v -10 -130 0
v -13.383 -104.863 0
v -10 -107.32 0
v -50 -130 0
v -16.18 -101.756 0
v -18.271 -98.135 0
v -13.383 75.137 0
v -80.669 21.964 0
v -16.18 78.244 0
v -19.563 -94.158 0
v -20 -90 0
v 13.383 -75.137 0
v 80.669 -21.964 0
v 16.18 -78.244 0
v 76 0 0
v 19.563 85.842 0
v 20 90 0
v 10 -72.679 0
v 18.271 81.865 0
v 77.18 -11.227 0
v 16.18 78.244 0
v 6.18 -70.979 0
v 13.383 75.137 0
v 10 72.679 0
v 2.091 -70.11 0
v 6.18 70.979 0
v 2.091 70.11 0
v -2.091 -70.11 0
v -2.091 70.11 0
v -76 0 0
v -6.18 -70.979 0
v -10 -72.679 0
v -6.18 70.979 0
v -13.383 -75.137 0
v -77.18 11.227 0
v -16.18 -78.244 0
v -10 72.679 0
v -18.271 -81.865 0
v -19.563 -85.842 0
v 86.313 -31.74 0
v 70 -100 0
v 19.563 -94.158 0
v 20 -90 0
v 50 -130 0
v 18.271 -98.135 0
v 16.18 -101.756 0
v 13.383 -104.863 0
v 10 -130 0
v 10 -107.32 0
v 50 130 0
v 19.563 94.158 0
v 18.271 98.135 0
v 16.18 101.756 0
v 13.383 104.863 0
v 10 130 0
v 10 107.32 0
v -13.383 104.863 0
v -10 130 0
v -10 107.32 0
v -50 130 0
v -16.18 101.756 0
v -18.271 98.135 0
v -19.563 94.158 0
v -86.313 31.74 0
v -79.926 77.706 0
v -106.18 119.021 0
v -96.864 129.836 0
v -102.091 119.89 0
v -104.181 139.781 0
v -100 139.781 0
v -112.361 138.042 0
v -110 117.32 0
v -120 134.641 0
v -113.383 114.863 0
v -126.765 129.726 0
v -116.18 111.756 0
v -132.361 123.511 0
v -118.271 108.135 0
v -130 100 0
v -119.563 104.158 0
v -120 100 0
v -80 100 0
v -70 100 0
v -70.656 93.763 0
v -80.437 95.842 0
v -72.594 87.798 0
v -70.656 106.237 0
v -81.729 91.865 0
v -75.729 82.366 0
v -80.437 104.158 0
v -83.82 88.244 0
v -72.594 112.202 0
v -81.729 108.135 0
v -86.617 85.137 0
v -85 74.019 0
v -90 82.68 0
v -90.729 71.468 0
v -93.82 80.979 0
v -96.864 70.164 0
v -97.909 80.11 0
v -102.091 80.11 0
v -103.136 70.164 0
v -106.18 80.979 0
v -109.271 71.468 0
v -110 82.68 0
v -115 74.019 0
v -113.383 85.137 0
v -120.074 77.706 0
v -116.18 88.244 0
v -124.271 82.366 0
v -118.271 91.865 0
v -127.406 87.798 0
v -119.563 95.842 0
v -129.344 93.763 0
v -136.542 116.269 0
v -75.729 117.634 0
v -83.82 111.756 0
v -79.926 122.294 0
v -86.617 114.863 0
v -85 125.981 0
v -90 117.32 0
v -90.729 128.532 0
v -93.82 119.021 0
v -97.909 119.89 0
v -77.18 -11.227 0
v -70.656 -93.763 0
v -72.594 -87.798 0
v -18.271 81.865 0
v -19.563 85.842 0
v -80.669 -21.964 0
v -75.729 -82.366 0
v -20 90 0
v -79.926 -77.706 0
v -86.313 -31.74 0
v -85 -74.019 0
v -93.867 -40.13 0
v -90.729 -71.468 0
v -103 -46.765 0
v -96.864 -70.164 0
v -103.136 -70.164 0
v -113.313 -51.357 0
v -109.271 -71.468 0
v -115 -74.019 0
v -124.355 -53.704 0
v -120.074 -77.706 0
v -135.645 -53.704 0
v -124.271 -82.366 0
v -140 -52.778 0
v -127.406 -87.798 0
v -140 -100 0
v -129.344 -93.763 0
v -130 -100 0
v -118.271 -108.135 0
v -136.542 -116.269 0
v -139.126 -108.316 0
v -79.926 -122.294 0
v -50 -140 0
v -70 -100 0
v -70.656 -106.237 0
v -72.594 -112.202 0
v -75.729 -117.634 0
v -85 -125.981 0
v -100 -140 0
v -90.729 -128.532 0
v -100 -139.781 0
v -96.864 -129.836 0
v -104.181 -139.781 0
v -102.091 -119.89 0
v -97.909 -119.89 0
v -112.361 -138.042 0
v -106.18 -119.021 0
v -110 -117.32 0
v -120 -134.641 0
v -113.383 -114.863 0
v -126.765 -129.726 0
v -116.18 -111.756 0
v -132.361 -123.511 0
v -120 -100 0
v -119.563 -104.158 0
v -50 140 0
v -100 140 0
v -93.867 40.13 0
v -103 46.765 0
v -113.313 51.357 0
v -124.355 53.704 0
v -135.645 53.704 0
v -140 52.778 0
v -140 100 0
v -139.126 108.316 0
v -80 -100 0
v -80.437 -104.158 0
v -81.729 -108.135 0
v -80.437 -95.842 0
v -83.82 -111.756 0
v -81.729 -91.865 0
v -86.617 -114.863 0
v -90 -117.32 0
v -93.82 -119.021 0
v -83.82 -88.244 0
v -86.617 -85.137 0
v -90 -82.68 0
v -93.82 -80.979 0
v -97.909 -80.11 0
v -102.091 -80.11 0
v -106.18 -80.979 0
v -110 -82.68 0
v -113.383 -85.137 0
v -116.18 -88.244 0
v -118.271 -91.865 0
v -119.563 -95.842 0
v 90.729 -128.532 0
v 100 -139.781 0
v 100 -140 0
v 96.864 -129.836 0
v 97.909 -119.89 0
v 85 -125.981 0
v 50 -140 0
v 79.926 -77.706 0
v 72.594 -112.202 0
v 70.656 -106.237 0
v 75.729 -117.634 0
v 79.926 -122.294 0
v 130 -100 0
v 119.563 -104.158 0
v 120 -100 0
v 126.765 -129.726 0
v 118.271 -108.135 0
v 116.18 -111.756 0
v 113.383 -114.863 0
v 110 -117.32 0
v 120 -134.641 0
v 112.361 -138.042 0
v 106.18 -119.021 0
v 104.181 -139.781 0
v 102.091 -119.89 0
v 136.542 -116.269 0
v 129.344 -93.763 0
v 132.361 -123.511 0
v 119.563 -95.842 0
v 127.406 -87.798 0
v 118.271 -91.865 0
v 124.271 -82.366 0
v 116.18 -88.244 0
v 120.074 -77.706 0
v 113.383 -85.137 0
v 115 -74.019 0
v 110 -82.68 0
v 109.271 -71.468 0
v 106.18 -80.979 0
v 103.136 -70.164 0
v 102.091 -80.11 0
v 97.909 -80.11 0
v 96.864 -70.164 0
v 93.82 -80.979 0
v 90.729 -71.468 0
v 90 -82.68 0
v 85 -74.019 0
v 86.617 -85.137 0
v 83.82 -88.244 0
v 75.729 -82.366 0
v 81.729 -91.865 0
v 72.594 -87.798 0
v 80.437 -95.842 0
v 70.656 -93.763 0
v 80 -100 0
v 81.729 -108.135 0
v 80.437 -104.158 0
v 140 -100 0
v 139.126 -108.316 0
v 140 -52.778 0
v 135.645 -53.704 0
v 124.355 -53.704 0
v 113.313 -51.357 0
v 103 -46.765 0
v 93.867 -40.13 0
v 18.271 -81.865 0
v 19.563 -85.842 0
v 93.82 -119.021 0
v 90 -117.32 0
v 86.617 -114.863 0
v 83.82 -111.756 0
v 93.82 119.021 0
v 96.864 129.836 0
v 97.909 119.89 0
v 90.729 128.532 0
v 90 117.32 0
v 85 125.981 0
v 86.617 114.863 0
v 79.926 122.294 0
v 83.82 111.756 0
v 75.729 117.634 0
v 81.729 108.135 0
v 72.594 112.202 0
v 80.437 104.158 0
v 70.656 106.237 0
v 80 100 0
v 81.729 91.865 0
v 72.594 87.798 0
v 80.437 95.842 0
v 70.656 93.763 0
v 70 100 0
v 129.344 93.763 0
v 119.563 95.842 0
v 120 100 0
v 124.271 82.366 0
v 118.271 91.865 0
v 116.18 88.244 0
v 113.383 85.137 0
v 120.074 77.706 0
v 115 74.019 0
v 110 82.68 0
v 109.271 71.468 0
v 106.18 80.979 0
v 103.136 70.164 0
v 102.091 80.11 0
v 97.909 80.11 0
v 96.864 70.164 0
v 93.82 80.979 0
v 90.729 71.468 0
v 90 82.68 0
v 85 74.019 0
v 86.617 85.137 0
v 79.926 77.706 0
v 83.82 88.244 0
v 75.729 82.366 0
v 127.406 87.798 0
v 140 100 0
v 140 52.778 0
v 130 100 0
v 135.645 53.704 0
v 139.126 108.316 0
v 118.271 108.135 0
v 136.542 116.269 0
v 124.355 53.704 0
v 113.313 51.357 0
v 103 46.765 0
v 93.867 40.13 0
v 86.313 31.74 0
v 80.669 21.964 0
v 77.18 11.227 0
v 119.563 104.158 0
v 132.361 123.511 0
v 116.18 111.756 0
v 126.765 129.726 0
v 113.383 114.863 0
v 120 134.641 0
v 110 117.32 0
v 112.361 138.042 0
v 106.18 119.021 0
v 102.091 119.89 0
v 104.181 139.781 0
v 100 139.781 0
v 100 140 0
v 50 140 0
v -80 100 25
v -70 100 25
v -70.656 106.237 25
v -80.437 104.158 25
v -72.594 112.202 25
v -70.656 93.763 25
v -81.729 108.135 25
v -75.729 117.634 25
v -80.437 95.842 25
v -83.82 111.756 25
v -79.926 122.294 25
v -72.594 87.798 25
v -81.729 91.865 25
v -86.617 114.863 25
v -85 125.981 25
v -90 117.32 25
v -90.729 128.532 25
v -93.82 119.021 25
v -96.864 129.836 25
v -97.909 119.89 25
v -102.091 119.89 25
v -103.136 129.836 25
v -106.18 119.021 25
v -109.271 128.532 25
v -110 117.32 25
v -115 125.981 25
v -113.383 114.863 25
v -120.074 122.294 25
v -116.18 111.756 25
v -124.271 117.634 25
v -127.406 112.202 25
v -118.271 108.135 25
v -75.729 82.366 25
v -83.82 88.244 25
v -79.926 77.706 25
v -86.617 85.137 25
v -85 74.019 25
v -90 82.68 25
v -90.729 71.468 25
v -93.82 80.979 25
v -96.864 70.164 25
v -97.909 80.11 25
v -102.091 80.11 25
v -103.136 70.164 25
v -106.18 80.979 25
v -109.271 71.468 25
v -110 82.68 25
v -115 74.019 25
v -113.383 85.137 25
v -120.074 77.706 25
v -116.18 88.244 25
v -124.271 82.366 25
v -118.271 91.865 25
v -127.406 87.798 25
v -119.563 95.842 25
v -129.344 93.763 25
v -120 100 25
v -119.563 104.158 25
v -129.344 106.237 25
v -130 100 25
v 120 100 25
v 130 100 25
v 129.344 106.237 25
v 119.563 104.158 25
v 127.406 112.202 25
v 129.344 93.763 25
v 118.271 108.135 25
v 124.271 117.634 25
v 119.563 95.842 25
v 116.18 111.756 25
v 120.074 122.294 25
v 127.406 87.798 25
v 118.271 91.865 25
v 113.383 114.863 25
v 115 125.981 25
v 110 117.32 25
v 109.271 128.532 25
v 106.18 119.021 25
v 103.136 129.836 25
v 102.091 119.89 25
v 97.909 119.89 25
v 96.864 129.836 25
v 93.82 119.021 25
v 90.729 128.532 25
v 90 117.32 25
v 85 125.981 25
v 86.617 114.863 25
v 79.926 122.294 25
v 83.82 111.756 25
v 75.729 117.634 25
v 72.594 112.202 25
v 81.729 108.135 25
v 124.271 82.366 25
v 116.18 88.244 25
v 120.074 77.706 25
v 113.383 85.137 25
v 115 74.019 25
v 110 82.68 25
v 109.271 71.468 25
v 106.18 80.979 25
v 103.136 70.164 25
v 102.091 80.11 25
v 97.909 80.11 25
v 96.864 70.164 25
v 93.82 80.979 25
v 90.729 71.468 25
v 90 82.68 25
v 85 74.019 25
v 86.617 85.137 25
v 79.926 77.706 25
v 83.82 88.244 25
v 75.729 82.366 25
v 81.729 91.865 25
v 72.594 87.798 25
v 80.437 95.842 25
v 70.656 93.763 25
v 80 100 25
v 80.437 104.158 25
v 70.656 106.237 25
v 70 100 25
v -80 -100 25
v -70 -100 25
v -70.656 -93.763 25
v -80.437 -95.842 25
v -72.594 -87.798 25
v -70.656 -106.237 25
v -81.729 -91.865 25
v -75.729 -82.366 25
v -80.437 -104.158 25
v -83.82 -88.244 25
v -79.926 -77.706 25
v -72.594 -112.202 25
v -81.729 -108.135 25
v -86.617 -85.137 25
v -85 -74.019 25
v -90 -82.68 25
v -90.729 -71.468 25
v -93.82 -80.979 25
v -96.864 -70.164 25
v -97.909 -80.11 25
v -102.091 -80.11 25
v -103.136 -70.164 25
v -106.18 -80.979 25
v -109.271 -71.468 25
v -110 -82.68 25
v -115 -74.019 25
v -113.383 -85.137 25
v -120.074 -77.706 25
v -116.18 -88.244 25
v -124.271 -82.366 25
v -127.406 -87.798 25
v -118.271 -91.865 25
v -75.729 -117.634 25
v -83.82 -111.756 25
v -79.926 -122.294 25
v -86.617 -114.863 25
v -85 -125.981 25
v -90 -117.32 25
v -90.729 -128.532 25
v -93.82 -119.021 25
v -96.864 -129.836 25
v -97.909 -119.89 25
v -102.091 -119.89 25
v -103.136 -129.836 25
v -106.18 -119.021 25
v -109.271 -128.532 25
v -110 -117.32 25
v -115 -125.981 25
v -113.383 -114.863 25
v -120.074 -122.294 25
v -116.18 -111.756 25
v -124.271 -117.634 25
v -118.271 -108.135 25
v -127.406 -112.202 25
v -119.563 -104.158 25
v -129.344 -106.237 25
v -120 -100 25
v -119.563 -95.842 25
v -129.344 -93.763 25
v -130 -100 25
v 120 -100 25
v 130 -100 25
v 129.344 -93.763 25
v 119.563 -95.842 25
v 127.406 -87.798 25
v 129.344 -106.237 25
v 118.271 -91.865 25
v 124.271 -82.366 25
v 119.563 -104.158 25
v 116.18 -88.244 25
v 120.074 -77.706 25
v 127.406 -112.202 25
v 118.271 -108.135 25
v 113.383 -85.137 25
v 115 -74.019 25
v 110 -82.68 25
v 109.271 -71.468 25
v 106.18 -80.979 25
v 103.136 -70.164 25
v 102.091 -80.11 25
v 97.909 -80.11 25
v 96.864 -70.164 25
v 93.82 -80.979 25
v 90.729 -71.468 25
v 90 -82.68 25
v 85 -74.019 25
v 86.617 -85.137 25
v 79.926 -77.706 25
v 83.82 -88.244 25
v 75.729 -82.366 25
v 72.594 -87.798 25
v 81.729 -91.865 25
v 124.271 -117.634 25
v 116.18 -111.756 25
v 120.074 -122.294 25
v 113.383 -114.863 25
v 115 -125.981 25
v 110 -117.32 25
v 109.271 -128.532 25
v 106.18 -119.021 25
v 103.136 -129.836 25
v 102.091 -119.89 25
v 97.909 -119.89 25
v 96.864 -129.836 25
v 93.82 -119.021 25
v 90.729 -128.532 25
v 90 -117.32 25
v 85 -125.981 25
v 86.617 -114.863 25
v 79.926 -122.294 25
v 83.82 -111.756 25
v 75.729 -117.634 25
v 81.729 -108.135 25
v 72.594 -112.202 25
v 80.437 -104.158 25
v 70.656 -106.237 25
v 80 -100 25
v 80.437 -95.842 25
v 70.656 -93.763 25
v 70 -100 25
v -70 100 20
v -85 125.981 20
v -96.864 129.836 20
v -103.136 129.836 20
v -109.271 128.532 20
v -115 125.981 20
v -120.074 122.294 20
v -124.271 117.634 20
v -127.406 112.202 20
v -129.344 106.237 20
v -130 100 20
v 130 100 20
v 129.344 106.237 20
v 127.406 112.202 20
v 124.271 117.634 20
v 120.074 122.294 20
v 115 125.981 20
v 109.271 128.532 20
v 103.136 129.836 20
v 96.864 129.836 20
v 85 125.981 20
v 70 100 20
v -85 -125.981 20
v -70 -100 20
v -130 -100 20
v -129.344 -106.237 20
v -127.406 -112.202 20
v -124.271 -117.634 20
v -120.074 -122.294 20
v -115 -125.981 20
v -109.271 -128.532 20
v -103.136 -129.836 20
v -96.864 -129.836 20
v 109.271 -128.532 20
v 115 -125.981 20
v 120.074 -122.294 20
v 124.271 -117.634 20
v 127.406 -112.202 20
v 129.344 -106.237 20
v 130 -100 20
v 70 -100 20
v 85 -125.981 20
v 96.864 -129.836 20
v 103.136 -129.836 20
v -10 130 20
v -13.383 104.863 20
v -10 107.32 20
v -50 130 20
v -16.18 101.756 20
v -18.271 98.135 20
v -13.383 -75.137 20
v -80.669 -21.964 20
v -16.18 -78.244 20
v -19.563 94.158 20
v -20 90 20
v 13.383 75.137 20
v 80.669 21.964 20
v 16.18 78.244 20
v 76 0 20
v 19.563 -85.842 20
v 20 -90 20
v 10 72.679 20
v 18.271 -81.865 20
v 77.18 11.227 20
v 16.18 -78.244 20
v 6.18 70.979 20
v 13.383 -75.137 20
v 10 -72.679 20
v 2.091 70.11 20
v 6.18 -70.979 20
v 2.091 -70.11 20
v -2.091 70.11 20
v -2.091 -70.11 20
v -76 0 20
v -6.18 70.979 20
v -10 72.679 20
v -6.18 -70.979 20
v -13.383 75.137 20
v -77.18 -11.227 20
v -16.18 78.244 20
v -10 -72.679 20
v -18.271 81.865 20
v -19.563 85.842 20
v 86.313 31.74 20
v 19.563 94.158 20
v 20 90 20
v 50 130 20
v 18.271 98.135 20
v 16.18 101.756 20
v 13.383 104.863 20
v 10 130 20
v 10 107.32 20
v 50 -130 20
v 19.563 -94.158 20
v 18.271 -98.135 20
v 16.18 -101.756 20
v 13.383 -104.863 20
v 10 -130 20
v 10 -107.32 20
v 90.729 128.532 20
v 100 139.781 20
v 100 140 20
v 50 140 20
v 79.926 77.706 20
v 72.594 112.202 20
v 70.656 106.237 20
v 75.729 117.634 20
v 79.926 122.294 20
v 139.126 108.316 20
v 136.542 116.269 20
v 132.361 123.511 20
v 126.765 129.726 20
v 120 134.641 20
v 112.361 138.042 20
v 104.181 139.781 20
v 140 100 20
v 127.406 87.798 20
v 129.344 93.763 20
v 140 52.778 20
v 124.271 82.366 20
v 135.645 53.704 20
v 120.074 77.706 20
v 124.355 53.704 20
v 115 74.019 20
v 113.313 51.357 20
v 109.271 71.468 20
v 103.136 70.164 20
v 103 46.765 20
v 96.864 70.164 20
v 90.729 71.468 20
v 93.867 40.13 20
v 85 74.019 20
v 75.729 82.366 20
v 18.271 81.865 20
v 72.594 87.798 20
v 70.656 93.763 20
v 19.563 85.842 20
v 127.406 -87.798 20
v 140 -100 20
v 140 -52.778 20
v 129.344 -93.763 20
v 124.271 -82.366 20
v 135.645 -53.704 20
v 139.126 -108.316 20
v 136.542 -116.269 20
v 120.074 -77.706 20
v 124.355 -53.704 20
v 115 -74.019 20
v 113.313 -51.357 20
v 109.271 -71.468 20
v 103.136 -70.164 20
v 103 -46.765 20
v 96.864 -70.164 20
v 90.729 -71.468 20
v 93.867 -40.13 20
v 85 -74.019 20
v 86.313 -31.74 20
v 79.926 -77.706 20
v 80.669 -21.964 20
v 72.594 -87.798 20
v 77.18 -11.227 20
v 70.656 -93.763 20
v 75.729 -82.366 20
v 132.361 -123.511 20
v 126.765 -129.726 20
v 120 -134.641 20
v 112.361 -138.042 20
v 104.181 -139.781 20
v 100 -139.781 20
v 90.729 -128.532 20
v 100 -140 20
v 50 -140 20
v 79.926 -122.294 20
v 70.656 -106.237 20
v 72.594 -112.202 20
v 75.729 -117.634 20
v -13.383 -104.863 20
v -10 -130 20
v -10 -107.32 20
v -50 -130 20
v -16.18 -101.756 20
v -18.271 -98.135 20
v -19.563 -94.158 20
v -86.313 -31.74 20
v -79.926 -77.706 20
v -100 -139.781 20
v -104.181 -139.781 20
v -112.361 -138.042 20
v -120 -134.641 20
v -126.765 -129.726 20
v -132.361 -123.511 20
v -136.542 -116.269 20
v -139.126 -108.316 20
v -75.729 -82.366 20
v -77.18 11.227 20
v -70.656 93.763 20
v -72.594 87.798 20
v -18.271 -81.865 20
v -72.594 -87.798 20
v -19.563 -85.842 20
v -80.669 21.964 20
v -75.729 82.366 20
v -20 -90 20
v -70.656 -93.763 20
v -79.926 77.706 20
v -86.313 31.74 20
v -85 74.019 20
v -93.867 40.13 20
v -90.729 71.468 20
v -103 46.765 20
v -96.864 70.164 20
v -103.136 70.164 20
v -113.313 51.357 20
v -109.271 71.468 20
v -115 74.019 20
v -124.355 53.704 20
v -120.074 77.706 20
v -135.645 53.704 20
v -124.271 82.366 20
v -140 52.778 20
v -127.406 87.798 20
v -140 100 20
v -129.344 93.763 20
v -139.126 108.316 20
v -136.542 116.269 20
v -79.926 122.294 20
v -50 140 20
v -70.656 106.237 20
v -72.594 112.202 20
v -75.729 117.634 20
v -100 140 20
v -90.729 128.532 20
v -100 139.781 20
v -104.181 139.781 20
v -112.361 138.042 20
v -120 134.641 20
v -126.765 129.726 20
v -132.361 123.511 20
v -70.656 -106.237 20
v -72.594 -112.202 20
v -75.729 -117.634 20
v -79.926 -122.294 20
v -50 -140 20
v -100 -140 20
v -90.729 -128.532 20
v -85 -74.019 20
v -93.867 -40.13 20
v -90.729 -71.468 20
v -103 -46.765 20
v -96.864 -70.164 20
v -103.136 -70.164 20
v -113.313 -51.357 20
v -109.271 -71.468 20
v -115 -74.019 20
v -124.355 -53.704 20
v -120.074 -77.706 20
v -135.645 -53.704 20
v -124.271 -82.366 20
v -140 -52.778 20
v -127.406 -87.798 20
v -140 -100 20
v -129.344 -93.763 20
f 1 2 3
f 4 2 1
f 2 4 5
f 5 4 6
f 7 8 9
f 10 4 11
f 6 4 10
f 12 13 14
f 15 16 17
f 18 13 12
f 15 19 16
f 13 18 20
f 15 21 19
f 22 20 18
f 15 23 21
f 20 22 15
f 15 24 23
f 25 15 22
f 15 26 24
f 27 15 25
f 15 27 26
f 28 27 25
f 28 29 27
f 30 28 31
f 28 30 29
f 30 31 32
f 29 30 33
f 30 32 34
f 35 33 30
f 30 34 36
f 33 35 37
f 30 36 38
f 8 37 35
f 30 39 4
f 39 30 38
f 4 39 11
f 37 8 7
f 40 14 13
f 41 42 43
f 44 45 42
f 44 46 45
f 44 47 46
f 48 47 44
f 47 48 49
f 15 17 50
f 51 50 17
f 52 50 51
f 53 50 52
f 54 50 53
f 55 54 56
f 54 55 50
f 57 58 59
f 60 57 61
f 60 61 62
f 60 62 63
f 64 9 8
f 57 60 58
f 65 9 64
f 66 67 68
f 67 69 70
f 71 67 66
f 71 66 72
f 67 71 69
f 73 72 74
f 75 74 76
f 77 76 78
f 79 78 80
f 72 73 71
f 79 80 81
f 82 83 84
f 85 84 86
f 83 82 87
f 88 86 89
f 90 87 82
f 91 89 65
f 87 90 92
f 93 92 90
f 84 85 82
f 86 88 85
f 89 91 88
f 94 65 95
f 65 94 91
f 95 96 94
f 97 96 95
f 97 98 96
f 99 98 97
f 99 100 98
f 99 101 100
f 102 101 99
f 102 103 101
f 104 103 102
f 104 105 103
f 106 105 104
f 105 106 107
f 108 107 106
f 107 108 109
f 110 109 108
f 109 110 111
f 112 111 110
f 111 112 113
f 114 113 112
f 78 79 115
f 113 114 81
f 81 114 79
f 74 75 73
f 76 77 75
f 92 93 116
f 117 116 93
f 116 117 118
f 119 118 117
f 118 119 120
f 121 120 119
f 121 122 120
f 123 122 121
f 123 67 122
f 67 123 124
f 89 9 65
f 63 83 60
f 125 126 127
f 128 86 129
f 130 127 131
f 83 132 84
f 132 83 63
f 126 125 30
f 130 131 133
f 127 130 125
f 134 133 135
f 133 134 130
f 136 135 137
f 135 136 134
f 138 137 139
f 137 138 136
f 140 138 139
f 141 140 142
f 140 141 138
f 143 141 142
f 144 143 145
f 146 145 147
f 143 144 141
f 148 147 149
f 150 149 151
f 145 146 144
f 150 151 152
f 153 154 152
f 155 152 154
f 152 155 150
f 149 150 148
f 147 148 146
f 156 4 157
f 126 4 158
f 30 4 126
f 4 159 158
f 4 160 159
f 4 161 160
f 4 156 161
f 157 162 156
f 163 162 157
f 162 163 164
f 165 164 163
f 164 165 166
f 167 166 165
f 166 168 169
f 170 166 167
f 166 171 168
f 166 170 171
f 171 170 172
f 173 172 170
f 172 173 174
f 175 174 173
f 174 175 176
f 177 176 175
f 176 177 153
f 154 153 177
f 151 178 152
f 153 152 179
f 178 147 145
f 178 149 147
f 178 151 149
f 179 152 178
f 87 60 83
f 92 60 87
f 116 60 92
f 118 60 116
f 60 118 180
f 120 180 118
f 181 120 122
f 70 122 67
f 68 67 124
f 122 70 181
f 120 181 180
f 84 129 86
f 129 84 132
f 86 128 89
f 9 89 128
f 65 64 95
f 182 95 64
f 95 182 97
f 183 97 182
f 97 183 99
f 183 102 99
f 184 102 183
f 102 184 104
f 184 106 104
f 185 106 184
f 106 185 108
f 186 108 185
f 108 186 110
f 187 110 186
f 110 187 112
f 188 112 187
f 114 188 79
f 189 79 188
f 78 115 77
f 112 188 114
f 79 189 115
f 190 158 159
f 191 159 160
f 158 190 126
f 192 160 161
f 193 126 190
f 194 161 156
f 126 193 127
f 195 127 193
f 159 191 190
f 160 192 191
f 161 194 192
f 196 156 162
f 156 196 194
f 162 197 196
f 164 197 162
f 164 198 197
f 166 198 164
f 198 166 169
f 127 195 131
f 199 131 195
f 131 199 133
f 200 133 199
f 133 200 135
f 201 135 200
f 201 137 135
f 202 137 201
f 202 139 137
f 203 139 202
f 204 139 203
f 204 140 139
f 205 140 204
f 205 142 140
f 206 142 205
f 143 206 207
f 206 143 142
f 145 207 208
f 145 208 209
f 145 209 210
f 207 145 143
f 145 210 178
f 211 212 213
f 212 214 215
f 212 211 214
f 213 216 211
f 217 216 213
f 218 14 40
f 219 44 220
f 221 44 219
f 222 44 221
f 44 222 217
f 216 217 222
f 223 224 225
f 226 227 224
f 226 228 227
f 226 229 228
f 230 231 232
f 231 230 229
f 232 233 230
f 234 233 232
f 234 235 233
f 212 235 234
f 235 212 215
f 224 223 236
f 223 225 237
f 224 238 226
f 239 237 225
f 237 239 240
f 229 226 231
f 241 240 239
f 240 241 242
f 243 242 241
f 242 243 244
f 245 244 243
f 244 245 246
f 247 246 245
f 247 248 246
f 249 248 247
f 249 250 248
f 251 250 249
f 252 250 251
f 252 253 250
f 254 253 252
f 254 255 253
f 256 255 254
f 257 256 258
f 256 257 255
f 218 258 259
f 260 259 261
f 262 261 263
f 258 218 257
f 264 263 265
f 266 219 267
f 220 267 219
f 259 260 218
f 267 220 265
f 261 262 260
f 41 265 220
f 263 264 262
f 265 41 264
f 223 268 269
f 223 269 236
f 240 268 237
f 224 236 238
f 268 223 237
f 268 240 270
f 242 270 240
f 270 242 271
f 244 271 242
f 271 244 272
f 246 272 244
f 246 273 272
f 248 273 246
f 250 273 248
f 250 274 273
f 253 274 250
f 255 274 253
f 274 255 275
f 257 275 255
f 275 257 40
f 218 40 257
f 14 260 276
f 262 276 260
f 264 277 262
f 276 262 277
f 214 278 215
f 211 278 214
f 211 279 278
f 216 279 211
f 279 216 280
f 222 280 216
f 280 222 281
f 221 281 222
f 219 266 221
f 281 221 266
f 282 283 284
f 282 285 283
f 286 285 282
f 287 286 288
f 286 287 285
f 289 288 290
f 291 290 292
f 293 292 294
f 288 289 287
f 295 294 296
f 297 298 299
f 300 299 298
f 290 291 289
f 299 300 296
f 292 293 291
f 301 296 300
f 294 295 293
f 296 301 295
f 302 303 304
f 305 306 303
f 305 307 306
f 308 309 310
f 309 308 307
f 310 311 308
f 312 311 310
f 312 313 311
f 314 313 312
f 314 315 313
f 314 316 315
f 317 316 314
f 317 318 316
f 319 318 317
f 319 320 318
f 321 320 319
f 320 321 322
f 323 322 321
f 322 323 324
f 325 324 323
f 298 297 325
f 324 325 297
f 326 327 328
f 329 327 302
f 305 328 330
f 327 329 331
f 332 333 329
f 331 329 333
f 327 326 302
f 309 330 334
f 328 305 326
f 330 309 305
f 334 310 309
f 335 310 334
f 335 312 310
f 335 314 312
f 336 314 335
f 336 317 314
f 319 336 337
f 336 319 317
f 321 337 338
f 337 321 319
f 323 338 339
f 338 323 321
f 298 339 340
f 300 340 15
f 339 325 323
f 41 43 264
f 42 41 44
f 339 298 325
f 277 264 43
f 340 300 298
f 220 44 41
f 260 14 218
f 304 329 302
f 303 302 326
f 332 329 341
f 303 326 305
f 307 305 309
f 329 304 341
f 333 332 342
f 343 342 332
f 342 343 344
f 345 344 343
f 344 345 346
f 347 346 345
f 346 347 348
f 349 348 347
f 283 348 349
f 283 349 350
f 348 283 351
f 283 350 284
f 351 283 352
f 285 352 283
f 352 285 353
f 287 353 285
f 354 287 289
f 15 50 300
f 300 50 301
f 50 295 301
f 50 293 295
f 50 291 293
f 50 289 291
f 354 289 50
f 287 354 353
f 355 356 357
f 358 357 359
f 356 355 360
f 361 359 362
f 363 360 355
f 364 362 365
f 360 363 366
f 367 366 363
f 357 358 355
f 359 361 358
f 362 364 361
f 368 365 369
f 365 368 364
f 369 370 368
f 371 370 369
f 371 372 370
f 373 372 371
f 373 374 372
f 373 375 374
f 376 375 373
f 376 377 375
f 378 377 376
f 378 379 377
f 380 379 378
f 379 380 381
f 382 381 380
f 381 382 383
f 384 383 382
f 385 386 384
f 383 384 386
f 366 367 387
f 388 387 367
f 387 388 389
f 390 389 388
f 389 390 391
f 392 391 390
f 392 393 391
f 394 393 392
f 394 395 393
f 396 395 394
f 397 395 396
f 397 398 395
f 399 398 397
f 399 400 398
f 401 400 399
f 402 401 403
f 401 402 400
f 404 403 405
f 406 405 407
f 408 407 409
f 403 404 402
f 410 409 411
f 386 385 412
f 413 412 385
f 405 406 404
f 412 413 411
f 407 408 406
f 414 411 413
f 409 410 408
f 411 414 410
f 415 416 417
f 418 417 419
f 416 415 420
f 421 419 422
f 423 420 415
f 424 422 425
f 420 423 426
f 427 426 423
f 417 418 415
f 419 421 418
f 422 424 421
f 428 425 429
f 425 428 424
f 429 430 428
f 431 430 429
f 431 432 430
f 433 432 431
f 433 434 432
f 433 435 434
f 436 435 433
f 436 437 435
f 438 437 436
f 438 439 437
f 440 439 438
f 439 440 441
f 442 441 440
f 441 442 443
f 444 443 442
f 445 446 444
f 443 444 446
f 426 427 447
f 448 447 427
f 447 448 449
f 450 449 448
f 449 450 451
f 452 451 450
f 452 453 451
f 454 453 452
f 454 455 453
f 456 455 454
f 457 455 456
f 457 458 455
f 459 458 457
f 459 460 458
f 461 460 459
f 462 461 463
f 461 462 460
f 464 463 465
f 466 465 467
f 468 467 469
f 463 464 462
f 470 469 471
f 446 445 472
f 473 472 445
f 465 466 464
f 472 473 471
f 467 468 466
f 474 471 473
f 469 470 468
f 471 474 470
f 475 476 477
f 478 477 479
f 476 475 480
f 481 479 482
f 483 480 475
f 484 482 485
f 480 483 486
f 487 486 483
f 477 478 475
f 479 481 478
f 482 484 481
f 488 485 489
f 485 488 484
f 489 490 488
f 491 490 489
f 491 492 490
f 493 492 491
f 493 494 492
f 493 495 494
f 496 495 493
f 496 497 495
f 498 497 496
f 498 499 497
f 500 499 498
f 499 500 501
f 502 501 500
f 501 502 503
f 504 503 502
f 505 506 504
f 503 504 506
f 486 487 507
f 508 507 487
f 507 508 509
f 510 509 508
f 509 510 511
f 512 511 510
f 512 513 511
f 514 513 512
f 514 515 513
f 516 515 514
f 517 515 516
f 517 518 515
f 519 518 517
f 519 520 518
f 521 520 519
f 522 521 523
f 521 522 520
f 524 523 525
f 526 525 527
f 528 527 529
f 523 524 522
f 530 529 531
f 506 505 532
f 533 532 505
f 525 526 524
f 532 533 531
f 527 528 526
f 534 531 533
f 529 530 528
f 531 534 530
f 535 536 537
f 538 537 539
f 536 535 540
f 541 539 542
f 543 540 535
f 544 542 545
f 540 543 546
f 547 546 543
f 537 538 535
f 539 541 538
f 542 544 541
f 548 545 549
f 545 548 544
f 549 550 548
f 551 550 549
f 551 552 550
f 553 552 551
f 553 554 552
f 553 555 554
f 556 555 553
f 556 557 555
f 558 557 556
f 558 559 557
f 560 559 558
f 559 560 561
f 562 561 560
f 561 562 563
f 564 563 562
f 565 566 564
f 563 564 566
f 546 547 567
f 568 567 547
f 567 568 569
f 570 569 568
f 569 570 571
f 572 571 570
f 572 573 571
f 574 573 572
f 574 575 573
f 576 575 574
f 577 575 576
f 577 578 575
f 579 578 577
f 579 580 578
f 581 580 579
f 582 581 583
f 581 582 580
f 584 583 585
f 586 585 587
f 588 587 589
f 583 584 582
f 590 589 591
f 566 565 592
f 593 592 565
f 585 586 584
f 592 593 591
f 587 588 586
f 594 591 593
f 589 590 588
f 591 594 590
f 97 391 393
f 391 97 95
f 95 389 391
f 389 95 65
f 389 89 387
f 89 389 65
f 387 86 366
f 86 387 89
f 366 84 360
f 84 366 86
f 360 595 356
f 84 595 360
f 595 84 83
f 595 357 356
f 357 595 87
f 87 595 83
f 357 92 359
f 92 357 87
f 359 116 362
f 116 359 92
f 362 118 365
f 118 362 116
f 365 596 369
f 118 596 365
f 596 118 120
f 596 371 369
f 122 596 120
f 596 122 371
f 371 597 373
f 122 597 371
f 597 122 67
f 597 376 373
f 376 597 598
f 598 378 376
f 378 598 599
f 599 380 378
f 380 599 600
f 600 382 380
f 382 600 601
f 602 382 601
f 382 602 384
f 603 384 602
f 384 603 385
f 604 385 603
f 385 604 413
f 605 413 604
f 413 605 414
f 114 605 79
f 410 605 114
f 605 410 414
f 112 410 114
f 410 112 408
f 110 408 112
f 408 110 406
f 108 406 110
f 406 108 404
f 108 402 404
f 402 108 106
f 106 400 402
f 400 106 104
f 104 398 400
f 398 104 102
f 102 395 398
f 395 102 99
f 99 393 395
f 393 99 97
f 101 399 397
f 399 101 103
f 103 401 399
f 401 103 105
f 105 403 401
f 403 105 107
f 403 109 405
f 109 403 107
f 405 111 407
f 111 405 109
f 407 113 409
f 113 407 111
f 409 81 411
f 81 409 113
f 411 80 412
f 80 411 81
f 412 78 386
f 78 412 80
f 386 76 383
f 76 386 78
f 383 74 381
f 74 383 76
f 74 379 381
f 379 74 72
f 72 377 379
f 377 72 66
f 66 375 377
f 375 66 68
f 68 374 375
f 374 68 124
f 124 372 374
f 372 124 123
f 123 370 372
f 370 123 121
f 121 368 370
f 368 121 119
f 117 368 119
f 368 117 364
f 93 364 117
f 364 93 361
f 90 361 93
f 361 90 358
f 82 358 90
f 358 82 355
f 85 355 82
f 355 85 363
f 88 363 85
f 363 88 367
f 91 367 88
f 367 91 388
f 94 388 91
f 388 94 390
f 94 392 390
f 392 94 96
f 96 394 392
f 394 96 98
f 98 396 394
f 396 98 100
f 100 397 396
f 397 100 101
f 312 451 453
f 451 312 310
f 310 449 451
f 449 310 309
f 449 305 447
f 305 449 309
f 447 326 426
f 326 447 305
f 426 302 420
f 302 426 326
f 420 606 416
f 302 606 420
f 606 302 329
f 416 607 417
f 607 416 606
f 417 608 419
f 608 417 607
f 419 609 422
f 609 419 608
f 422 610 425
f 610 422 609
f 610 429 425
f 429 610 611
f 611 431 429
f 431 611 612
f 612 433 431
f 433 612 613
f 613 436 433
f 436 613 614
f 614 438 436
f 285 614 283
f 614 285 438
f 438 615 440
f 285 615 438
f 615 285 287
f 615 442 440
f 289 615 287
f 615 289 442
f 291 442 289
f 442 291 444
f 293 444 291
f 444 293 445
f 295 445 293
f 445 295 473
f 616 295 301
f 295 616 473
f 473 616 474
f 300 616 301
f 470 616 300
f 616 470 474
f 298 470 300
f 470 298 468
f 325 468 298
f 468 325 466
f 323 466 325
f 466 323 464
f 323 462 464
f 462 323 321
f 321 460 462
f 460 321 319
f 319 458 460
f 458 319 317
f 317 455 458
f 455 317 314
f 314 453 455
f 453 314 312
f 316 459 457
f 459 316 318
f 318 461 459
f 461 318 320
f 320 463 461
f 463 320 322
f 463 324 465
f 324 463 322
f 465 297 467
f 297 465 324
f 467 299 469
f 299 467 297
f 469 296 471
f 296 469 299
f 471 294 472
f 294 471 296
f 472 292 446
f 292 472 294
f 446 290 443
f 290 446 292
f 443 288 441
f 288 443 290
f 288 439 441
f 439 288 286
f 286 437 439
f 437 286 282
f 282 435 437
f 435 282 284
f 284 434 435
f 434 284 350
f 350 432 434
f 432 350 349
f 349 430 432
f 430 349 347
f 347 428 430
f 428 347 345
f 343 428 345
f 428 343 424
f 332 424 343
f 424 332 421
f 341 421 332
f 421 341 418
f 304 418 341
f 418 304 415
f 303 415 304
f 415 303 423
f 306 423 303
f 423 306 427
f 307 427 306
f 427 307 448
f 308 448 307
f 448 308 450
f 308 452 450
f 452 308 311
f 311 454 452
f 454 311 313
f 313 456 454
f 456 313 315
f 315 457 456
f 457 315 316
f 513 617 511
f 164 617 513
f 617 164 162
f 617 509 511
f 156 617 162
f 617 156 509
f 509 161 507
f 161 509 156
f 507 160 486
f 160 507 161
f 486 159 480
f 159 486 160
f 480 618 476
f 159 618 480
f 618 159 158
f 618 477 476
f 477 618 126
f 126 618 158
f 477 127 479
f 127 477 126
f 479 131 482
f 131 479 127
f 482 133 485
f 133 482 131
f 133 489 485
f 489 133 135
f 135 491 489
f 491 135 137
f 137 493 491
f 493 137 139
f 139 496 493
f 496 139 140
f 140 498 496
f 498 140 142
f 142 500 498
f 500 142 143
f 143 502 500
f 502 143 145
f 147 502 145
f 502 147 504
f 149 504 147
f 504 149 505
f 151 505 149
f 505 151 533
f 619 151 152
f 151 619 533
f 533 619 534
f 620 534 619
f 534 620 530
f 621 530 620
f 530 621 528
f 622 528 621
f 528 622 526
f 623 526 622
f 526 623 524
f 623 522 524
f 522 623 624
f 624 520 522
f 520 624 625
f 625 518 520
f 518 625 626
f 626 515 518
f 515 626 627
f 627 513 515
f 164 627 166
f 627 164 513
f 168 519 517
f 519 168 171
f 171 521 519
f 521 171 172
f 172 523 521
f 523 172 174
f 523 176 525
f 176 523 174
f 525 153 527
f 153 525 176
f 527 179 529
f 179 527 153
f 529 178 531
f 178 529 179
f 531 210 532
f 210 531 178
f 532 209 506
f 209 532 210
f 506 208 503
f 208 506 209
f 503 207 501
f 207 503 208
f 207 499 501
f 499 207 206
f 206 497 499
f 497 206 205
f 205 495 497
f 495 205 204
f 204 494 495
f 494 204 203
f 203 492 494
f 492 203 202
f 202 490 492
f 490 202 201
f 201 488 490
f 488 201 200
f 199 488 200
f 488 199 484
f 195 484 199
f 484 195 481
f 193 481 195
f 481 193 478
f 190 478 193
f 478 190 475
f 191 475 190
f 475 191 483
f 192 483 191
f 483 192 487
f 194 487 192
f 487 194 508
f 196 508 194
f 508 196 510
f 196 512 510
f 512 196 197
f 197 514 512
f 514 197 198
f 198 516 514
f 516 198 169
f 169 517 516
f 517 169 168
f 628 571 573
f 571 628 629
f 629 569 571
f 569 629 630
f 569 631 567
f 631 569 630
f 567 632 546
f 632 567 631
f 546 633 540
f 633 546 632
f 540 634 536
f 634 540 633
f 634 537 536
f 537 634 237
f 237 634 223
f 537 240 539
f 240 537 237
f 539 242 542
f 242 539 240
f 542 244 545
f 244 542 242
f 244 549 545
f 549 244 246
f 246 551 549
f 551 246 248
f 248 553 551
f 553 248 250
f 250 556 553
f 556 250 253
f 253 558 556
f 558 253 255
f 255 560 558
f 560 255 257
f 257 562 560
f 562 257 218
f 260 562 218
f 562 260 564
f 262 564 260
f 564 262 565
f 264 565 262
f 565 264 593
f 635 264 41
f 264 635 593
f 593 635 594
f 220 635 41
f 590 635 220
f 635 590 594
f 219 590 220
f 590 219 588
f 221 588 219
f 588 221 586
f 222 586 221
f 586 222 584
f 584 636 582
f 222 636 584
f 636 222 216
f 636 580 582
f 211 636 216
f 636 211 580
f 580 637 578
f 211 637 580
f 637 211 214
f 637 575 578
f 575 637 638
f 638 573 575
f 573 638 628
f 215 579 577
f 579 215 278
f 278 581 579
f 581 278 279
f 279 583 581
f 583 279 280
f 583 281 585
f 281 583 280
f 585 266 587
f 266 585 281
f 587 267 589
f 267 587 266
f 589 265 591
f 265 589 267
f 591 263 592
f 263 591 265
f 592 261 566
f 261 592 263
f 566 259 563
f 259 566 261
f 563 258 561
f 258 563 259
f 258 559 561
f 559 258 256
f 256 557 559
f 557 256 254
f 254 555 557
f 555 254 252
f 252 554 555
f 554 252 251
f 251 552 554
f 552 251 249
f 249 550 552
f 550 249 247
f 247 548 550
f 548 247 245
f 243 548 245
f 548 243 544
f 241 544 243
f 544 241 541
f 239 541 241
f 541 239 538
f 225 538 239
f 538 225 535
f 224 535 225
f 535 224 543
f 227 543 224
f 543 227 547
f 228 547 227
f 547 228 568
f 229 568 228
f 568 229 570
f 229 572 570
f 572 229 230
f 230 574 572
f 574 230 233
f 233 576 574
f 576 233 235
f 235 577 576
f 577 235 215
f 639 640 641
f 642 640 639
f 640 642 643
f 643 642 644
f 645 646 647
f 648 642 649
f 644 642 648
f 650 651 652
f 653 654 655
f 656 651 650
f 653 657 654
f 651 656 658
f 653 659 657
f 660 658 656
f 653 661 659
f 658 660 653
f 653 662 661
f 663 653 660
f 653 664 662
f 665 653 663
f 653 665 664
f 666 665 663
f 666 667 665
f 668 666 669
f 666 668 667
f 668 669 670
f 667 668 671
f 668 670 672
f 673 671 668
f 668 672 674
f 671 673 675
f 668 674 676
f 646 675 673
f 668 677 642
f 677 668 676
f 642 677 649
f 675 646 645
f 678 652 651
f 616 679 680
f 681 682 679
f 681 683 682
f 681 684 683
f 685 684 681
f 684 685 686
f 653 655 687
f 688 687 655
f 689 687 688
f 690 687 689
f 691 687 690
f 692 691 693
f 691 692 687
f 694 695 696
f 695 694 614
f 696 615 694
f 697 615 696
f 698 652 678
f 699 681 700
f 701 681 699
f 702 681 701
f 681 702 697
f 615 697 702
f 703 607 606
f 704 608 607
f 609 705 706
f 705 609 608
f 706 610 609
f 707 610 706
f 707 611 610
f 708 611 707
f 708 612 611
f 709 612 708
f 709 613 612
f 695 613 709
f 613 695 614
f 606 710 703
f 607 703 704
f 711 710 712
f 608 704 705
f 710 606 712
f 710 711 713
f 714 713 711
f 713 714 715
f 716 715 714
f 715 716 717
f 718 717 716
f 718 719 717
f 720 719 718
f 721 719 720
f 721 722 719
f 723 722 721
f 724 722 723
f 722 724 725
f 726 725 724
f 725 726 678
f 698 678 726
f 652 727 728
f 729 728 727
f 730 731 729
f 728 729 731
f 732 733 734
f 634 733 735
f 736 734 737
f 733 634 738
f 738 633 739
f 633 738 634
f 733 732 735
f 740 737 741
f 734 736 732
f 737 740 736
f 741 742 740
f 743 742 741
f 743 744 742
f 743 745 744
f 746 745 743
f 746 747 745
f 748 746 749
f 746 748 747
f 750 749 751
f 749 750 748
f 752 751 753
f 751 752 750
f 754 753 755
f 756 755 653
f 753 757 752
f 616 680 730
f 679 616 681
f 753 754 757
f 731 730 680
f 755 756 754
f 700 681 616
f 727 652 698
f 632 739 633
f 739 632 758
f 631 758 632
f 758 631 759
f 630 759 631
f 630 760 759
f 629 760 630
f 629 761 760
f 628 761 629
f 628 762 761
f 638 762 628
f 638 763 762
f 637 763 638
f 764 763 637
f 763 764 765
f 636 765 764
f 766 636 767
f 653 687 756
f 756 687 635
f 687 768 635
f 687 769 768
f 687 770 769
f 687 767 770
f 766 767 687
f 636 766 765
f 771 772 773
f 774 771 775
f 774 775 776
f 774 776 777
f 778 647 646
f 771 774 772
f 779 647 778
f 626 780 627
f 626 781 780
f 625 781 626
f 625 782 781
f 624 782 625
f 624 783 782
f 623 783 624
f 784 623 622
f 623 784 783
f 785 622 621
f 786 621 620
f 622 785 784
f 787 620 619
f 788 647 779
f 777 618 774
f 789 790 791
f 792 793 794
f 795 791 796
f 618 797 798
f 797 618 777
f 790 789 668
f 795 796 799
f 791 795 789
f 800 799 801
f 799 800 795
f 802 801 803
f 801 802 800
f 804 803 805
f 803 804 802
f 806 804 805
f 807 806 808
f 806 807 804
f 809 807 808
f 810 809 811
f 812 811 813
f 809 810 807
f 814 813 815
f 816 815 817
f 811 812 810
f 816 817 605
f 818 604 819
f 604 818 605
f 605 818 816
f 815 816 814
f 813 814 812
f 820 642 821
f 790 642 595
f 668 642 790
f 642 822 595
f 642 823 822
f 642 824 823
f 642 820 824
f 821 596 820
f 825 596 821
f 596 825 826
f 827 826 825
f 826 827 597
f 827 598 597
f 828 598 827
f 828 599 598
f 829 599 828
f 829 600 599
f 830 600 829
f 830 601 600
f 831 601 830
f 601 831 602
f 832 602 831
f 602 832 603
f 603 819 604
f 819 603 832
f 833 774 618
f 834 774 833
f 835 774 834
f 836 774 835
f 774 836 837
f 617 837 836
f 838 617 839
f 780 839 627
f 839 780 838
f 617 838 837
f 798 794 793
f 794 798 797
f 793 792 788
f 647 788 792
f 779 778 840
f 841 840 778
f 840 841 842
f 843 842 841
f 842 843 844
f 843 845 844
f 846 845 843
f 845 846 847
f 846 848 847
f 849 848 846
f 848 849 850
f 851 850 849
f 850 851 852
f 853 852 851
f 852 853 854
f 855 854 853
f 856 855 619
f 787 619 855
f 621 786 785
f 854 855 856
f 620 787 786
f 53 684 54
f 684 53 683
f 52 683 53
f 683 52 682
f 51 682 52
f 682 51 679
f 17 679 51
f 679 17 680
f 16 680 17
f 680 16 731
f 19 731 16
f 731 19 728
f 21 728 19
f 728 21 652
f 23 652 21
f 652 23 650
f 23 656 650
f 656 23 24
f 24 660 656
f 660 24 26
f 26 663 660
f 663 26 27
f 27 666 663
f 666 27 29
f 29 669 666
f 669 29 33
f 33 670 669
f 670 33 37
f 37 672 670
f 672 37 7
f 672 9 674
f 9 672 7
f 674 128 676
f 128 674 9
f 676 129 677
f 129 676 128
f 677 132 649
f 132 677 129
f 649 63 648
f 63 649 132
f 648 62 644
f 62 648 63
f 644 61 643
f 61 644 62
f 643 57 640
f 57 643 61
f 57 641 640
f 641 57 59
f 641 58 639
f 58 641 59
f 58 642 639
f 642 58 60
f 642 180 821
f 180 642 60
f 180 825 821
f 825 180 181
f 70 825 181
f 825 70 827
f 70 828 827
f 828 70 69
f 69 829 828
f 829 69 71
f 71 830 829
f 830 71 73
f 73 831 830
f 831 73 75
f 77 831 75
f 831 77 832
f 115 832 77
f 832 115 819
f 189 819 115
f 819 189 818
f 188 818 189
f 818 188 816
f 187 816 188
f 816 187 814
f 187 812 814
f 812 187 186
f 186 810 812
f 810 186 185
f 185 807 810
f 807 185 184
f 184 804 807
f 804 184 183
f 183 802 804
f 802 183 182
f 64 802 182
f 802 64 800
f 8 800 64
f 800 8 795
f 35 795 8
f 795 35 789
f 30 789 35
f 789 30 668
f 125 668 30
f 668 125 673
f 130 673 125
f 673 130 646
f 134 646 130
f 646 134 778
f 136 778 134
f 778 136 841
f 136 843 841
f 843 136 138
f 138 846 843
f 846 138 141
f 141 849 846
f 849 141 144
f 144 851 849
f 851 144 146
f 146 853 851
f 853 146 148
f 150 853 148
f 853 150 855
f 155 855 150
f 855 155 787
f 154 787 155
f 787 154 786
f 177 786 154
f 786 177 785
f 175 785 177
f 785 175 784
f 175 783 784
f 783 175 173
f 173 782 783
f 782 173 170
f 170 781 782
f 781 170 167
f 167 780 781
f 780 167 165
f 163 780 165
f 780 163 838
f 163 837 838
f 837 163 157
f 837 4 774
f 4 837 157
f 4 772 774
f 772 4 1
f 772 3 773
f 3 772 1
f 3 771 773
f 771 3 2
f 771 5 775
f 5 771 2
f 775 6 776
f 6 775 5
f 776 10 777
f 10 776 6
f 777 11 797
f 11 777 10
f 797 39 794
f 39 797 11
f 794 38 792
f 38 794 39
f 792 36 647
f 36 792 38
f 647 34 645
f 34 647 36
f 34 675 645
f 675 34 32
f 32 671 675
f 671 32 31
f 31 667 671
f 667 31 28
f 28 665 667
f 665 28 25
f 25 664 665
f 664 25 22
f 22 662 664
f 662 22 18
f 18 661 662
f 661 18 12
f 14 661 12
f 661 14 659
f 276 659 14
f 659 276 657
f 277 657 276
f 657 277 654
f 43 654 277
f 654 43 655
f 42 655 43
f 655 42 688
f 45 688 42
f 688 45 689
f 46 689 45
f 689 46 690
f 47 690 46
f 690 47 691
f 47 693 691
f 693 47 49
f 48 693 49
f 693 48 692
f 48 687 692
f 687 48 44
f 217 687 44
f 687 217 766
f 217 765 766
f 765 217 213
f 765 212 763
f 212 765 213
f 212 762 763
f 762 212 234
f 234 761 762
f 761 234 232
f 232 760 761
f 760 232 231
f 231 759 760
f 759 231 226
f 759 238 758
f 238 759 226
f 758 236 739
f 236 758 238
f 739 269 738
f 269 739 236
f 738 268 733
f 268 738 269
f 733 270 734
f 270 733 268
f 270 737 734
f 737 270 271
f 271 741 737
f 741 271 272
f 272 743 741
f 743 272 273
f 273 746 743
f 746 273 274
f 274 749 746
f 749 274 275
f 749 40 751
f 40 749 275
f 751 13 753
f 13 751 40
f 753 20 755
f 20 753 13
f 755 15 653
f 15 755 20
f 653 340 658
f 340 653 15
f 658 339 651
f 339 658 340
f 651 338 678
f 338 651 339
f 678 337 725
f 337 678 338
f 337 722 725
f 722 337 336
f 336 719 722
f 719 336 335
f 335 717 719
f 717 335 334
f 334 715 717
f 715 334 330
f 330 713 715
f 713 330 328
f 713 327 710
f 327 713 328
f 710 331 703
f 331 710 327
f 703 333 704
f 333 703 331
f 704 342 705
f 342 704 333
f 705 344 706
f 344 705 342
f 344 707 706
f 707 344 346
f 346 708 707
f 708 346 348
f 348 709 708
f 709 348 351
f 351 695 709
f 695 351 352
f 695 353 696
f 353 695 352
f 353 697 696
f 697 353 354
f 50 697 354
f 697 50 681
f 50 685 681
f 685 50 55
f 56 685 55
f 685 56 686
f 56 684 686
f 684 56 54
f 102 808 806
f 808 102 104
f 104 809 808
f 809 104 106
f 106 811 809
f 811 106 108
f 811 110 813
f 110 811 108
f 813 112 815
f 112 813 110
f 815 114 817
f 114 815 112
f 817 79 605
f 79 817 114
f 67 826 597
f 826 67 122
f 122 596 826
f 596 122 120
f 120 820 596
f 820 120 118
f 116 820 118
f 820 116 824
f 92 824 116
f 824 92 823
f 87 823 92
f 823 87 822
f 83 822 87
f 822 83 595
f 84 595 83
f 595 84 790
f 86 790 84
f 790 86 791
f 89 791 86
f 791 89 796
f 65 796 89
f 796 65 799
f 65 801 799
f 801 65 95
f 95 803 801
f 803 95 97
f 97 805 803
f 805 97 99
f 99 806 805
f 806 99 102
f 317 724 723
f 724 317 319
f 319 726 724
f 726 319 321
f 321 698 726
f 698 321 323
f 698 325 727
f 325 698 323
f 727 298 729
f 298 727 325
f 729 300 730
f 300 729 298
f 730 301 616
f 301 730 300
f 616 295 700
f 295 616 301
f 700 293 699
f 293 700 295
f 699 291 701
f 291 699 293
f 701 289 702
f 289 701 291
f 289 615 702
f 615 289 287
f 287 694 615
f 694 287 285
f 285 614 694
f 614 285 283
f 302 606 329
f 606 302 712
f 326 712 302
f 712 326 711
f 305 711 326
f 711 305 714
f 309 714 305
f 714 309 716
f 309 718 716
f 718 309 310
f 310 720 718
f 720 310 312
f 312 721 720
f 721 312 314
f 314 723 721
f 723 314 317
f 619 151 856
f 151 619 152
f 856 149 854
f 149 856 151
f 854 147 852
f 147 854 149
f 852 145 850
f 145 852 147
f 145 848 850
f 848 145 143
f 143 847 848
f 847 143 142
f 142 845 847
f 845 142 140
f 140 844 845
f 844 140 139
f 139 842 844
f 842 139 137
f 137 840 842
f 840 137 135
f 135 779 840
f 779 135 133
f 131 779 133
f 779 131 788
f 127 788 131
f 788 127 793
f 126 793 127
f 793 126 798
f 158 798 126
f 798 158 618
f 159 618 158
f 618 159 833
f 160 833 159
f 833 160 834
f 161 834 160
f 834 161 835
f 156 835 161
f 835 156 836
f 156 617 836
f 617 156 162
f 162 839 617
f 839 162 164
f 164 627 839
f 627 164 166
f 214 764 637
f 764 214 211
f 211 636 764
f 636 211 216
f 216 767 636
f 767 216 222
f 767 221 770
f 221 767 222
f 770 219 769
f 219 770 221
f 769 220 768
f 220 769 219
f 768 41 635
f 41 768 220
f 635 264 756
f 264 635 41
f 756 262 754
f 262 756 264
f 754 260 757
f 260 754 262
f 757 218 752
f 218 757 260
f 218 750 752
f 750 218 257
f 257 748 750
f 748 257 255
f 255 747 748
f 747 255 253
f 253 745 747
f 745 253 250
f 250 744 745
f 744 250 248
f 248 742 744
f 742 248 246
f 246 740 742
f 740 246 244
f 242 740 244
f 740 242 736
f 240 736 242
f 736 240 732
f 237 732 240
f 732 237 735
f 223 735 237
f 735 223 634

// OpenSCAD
module blue_hole() {
        difference() {
            circle(30);
            circle(20);
        }
}

linear_extrude(25){
    translate([-100,-100]) blue_hole();
    translate([-100,100]) blue_hole();
    translate([100,-100]) blue_hole();
    translate([100,100]) blue_hole();
}

linear_extrude(20)
difference() {
    union() {
        difference() {
            square([280,280], center=true);
        
            difference()
            translate([100,100]) {
                square([80,80],center=true);
                circle(40);
            }
            difference()
            translate([100,-100]) {
                square([80,80],center=true);
                circle(40);
            }
            difference()
            translate([-100,100]) {
                square([80,80],center=true);
                circle(40);
            }
            difference()
            translate([-100,-100]) {
                square([80,80],center=true);
                circle(40);
            }
        }
        square([200,280], center=true);
        square([280,200], center=true);
        translate([100,100]) circle(40);
        translate([100,-100]) circle(40);
        translate([-100,100]) circle(40);
        translate([-100,-100]) circle(40);
    }
    
    translate([130,0]) circle(54);
    translate([-130,0]) circle(54);
    
    translate([0,90]) circle(20);
    translate([-10,100]) square([20,30]);
    translate([-50,130]) square([100,10]);
    
    translate([0,-90]) circle(20);
    translate([-10,-130]) square([20,30]);
    translate([-50,-140]) square([100,10]);
    
    translate([-100,-100]) circle(30);
    translate([-100,100]) circle(30);
    translate([100,-100]) circle(30);
    translate([100,100]) circle(30);
}
